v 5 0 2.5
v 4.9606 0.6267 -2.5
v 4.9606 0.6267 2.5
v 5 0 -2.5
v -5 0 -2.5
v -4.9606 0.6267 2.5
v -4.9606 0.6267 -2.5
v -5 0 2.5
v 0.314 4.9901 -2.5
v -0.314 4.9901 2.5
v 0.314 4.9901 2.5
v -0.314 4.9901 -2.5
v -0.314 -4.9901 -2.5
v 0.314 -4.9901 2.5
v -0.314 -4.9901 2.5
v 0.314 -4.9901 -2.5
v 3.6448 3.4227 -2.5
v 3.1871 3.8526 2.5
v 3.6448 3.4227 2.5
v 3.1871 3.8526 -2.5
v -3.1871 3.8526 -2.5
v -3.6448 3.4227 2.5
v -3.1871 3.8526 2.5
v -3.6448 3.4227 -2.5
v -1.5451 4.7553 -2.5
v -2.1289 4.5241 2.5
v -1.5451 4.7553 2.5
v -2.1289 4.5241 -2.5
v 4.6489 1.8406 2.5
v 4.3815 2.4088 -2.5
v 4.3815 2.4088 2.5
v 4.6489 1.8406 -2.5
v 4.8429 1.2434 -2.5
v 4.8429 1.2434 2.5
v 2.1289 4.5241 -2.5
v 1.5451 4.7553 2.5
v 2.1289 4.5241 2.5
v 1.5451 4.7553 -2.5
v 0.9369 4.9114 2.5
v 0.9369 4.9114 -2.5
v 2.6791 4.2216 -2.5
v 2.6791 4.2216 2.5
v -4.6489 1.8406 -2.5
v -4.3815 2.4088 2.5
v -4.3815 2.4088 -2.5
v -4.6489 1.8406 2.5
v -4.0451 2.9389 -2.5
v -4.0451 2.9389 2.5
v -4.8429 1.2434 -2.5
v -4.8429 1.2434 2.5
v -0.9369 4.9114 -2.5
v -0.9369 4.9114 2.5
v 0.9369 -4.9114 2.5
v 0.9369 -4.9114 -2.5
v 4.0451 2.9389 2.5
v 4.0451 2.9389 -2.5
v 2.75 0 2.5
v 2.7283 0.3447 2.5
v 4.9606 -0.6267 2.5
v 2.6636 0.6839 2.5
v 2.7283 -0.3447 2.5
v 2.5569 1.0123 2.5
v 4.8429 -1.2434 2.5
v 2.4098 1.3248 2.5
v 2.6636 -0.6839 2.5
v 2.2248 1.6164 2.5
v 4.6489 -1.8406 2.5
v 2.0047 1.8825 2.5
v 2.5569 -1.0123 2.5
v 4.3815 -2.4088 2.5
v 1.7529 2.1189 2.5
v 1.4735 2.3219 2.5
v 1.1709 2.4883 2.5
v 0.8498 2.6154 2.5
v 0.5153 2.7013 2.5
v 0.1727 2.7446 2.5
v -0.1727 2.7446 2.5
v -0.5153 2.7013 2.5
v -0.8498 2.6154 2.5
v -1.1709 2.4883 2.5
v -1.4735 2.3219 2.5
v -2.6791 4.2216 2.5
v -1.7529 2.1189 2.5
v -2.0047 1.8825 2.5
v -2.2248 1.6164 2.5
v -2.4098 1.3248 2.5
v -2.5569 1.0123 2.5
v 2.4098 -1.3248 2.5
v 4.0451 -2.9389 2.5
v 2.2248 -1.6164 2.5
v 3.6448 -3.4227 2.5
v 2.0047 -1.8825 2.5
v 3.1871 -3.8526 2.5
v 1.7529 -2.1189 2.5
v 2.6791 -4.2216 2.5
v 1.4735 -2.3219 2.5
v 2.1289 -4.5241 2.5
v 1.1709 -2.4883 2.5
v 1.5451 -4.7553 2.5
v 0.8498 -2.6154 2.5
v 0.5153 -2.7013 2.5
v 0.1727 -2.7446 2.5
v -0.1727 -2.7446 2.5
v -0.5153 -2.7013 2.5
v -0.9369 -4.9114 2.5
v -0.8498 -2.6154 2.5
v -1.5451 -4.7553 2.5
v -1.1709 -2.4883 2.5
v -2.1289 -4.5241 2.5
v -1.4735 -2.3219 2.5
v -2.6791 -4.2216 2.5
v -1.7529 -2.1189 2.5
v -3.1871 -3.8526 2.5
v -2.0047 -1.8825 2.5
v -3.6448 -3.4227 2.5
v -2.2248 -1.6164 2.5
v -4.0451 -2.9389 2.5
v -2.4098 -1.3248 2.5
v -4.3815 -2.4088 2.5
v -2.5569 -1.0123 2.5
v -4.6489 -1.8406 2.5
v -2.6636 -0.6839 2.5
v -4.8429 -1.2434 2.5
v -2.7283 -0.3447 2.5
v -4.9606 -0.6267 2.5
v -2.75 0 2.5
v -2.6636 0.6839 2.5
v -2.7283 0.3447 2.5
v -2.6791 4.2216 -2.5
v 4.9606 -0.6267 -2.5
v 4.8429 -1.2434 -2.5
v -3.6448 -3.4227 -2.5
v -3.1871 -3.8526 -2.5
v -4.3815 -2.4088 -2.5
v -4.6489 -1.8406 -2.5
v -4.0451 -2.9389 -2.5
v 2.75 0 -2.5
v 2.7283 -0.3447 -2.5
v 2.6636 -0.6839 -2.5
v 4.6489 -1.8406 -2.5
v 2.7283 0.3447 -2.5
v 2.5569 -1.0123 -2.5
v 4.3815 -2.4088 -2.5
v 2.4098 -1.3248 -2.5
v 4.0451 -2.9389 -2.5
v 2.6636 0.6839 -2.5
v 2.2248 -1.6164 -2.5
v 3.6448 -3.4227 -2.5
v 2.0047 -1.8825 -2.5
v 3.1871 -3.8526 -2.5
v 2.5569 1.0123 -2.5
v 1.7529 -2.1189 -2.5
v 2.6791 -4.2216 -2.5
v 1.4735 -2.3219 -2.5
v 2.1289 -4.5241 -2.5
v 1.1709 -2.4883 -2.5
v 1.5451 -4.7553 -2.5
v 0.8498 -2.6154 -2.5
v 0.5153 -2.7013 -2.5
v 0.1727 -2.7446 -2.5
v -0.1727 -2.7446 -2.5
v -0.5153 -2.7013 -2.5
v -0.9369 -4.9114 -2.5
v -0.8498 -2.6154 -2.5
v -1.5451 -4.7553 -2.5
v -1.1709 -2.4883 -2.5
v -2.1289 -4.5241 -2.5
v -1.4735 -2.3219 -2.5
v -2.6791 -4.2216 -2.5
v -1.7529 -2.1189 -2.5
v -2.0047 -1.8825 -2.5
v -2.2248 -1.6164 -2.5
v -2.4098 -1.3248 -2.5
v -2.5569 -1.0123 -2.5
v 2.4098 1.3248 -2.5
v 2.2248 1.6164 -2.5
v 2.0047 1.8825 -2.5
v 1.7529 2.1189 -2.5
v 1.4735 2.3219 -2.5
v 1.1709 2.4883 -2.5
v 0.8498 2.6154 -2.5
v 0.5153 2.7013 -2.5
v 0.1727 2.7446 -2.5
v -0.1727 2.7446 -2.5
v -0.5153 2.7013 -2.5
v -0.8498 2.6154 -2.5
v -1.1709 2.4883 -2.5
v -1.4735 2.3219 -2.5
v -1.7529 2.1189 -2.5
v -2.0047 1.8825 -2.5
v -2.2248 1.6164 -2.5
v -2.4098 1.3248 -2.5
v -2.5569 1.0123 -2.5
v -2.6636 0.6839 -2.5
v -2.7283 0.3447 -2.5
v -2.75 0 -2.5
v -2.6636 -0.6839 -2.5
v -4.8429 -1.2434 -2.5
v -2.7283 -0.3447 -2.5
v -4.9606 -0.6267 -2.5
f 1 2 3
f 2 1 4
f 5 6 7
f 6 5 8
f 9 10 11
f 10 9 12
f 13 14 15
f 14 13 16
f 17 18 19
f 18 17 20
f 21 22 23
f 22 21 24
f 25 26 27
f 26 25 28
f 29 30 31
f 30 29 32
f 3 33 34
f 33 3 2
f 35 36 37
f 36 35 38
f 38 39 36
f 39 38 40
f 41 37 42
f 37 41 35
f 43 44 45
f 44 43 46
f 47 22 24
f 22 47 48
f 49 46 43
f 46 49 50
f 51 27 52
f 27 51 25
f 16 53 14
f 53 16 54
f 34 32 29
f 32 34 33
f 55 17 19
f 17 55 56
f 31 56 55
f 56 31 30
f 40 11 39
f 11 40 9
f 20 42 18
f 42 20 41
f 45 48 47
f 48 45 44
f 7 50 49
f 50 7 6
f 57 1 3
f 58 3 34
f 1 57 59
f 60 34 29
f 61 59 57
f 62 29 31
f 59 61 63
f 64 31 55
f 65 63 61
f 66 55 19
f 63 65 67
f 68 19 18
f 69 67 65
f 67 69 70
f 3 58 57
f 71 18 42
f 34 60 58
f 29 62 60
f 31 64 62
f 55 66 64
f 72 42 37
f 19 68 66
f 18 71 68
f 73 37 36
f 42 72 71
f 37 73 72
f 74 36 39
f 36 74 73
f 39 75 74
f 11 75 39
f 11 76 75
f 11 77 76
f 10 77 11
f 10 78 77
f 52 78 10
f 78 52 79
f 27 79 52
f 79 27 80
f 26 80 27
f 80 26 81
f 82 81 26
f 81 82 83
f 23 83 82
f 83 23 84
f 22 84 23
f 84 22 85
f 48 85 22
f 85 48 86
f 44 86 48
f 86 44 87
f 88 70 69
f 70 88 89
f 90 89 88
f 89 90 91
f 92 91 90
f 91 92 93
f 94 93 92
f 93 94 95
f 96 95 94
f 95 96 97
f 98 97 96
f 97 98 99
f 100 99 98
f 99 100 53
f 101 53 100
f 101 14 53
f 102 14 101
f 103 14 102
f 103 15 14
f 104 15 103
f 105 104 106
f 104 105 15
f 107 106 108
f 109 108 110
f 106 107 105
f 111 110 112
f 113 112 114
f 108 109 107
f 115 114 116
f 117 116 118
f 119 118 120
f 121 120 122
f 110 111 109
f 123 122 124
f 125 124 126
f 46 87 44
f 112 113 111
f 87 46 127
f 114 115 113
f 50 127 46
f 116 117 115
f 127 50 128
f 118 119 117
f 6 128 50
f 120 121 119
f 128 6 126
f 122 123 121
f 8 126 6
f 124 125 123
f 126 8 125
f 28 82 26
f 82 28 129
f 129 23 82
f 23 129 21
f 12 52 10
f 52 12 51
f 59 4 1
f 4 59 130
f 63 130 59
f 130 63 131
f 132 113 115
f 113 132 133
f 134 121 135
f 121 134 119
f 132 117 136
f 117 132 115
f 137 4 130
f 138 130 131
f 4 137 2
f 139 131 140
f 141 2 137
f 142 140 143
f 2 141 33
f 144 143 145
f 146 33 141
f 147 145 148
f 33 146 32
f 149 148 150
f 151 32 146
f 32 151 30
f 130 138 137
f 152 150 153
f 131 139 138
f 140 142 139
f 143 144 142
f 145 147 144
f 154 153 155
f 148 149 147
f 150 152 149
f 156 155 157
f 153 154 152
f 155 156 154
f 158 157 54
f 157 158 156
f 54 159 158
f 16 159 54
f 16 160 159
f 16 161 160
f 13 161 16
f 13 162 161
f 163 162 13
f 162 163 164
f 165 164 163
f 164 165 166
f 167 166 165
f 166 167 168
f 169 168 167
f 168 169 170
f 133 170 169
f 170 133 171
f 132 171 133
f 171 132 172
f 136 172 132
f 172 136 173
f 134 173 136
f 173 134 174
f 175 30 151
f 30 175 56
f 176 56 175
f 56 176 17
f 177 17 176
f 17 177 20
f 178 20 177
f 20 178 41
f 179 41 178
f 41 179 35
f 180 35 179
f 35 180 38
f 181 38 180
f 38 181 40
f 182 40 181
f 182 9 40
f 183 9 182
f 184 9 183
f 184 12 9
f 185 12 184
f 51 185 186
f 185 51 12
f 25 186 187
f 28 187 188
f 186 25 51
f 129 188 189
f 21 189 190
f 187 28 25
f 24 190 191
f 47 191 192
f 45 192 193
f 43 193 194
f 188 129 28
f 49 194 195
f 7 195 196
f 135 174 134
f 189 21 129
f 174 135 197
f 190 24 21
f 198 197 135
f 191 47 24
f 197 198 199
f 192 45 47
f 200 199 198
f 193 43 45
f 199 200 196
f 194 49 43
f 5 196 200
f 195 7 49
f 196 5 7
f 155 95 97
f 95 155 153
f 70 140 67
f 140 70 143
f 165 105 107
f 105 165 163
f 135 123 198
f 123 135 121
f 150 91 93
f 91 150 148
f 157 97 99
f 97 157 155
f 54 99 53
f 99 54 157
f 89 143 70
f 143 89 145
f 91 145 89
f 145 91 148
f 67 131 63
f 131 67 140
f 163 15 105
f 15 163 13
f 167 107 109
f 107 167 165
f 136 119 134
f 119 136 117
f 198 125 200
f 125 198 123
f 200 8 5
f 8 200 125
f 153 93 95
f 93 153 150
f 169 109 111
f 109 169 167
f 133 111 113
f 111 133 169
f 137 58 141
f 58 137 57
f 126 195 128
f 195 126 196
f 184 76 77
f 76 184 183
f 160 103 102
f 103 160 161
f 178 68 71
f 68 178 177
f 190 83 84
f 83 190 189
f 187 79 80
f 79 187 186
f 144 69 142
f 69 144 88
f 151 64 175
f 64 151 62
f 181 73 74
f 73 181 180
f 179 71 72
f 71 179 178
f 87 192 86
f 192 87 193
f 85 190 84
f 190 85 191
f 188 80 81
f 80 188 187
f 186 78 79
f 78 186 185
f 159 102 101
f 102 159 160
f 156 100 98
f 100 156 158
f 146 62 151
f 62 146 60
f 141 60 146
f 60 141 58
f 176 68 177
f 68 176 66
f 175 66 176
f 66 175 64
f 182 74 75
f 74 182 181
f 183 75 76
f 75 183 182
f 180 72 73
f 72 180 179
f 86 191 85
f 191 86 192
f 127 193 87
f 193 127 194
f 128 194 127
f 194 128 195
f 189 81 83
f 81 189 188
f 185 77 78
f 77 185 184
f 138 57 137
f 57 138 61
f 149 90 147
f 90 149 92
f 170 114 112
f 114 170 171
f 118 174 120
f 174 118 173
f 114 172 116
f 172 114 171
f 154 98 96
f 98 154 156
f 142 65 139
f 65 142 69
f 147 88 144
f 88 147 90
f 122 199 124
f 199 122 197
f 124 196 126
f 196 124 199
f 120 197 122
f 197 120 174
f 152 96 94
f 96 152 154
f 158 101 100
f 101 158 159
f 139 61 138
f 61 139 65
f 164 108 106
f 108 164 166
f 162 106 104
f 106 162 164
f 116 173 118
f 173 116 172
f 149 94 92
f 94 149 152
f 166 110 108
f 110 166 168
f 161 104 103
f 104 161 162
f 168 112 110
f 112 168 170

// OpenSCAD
$fn = 50;


difference() {
	union() {
		translate(v = [0, 0, -2.5000000000]) {
			cylinder(h = 5, r = 5.0000000000);
		}
	}
	union() {
		translate(v = [0, 0, -100.0000000000]) {
			cylinder(h = 200, r = 2.7500000000);
		}
	}
}
